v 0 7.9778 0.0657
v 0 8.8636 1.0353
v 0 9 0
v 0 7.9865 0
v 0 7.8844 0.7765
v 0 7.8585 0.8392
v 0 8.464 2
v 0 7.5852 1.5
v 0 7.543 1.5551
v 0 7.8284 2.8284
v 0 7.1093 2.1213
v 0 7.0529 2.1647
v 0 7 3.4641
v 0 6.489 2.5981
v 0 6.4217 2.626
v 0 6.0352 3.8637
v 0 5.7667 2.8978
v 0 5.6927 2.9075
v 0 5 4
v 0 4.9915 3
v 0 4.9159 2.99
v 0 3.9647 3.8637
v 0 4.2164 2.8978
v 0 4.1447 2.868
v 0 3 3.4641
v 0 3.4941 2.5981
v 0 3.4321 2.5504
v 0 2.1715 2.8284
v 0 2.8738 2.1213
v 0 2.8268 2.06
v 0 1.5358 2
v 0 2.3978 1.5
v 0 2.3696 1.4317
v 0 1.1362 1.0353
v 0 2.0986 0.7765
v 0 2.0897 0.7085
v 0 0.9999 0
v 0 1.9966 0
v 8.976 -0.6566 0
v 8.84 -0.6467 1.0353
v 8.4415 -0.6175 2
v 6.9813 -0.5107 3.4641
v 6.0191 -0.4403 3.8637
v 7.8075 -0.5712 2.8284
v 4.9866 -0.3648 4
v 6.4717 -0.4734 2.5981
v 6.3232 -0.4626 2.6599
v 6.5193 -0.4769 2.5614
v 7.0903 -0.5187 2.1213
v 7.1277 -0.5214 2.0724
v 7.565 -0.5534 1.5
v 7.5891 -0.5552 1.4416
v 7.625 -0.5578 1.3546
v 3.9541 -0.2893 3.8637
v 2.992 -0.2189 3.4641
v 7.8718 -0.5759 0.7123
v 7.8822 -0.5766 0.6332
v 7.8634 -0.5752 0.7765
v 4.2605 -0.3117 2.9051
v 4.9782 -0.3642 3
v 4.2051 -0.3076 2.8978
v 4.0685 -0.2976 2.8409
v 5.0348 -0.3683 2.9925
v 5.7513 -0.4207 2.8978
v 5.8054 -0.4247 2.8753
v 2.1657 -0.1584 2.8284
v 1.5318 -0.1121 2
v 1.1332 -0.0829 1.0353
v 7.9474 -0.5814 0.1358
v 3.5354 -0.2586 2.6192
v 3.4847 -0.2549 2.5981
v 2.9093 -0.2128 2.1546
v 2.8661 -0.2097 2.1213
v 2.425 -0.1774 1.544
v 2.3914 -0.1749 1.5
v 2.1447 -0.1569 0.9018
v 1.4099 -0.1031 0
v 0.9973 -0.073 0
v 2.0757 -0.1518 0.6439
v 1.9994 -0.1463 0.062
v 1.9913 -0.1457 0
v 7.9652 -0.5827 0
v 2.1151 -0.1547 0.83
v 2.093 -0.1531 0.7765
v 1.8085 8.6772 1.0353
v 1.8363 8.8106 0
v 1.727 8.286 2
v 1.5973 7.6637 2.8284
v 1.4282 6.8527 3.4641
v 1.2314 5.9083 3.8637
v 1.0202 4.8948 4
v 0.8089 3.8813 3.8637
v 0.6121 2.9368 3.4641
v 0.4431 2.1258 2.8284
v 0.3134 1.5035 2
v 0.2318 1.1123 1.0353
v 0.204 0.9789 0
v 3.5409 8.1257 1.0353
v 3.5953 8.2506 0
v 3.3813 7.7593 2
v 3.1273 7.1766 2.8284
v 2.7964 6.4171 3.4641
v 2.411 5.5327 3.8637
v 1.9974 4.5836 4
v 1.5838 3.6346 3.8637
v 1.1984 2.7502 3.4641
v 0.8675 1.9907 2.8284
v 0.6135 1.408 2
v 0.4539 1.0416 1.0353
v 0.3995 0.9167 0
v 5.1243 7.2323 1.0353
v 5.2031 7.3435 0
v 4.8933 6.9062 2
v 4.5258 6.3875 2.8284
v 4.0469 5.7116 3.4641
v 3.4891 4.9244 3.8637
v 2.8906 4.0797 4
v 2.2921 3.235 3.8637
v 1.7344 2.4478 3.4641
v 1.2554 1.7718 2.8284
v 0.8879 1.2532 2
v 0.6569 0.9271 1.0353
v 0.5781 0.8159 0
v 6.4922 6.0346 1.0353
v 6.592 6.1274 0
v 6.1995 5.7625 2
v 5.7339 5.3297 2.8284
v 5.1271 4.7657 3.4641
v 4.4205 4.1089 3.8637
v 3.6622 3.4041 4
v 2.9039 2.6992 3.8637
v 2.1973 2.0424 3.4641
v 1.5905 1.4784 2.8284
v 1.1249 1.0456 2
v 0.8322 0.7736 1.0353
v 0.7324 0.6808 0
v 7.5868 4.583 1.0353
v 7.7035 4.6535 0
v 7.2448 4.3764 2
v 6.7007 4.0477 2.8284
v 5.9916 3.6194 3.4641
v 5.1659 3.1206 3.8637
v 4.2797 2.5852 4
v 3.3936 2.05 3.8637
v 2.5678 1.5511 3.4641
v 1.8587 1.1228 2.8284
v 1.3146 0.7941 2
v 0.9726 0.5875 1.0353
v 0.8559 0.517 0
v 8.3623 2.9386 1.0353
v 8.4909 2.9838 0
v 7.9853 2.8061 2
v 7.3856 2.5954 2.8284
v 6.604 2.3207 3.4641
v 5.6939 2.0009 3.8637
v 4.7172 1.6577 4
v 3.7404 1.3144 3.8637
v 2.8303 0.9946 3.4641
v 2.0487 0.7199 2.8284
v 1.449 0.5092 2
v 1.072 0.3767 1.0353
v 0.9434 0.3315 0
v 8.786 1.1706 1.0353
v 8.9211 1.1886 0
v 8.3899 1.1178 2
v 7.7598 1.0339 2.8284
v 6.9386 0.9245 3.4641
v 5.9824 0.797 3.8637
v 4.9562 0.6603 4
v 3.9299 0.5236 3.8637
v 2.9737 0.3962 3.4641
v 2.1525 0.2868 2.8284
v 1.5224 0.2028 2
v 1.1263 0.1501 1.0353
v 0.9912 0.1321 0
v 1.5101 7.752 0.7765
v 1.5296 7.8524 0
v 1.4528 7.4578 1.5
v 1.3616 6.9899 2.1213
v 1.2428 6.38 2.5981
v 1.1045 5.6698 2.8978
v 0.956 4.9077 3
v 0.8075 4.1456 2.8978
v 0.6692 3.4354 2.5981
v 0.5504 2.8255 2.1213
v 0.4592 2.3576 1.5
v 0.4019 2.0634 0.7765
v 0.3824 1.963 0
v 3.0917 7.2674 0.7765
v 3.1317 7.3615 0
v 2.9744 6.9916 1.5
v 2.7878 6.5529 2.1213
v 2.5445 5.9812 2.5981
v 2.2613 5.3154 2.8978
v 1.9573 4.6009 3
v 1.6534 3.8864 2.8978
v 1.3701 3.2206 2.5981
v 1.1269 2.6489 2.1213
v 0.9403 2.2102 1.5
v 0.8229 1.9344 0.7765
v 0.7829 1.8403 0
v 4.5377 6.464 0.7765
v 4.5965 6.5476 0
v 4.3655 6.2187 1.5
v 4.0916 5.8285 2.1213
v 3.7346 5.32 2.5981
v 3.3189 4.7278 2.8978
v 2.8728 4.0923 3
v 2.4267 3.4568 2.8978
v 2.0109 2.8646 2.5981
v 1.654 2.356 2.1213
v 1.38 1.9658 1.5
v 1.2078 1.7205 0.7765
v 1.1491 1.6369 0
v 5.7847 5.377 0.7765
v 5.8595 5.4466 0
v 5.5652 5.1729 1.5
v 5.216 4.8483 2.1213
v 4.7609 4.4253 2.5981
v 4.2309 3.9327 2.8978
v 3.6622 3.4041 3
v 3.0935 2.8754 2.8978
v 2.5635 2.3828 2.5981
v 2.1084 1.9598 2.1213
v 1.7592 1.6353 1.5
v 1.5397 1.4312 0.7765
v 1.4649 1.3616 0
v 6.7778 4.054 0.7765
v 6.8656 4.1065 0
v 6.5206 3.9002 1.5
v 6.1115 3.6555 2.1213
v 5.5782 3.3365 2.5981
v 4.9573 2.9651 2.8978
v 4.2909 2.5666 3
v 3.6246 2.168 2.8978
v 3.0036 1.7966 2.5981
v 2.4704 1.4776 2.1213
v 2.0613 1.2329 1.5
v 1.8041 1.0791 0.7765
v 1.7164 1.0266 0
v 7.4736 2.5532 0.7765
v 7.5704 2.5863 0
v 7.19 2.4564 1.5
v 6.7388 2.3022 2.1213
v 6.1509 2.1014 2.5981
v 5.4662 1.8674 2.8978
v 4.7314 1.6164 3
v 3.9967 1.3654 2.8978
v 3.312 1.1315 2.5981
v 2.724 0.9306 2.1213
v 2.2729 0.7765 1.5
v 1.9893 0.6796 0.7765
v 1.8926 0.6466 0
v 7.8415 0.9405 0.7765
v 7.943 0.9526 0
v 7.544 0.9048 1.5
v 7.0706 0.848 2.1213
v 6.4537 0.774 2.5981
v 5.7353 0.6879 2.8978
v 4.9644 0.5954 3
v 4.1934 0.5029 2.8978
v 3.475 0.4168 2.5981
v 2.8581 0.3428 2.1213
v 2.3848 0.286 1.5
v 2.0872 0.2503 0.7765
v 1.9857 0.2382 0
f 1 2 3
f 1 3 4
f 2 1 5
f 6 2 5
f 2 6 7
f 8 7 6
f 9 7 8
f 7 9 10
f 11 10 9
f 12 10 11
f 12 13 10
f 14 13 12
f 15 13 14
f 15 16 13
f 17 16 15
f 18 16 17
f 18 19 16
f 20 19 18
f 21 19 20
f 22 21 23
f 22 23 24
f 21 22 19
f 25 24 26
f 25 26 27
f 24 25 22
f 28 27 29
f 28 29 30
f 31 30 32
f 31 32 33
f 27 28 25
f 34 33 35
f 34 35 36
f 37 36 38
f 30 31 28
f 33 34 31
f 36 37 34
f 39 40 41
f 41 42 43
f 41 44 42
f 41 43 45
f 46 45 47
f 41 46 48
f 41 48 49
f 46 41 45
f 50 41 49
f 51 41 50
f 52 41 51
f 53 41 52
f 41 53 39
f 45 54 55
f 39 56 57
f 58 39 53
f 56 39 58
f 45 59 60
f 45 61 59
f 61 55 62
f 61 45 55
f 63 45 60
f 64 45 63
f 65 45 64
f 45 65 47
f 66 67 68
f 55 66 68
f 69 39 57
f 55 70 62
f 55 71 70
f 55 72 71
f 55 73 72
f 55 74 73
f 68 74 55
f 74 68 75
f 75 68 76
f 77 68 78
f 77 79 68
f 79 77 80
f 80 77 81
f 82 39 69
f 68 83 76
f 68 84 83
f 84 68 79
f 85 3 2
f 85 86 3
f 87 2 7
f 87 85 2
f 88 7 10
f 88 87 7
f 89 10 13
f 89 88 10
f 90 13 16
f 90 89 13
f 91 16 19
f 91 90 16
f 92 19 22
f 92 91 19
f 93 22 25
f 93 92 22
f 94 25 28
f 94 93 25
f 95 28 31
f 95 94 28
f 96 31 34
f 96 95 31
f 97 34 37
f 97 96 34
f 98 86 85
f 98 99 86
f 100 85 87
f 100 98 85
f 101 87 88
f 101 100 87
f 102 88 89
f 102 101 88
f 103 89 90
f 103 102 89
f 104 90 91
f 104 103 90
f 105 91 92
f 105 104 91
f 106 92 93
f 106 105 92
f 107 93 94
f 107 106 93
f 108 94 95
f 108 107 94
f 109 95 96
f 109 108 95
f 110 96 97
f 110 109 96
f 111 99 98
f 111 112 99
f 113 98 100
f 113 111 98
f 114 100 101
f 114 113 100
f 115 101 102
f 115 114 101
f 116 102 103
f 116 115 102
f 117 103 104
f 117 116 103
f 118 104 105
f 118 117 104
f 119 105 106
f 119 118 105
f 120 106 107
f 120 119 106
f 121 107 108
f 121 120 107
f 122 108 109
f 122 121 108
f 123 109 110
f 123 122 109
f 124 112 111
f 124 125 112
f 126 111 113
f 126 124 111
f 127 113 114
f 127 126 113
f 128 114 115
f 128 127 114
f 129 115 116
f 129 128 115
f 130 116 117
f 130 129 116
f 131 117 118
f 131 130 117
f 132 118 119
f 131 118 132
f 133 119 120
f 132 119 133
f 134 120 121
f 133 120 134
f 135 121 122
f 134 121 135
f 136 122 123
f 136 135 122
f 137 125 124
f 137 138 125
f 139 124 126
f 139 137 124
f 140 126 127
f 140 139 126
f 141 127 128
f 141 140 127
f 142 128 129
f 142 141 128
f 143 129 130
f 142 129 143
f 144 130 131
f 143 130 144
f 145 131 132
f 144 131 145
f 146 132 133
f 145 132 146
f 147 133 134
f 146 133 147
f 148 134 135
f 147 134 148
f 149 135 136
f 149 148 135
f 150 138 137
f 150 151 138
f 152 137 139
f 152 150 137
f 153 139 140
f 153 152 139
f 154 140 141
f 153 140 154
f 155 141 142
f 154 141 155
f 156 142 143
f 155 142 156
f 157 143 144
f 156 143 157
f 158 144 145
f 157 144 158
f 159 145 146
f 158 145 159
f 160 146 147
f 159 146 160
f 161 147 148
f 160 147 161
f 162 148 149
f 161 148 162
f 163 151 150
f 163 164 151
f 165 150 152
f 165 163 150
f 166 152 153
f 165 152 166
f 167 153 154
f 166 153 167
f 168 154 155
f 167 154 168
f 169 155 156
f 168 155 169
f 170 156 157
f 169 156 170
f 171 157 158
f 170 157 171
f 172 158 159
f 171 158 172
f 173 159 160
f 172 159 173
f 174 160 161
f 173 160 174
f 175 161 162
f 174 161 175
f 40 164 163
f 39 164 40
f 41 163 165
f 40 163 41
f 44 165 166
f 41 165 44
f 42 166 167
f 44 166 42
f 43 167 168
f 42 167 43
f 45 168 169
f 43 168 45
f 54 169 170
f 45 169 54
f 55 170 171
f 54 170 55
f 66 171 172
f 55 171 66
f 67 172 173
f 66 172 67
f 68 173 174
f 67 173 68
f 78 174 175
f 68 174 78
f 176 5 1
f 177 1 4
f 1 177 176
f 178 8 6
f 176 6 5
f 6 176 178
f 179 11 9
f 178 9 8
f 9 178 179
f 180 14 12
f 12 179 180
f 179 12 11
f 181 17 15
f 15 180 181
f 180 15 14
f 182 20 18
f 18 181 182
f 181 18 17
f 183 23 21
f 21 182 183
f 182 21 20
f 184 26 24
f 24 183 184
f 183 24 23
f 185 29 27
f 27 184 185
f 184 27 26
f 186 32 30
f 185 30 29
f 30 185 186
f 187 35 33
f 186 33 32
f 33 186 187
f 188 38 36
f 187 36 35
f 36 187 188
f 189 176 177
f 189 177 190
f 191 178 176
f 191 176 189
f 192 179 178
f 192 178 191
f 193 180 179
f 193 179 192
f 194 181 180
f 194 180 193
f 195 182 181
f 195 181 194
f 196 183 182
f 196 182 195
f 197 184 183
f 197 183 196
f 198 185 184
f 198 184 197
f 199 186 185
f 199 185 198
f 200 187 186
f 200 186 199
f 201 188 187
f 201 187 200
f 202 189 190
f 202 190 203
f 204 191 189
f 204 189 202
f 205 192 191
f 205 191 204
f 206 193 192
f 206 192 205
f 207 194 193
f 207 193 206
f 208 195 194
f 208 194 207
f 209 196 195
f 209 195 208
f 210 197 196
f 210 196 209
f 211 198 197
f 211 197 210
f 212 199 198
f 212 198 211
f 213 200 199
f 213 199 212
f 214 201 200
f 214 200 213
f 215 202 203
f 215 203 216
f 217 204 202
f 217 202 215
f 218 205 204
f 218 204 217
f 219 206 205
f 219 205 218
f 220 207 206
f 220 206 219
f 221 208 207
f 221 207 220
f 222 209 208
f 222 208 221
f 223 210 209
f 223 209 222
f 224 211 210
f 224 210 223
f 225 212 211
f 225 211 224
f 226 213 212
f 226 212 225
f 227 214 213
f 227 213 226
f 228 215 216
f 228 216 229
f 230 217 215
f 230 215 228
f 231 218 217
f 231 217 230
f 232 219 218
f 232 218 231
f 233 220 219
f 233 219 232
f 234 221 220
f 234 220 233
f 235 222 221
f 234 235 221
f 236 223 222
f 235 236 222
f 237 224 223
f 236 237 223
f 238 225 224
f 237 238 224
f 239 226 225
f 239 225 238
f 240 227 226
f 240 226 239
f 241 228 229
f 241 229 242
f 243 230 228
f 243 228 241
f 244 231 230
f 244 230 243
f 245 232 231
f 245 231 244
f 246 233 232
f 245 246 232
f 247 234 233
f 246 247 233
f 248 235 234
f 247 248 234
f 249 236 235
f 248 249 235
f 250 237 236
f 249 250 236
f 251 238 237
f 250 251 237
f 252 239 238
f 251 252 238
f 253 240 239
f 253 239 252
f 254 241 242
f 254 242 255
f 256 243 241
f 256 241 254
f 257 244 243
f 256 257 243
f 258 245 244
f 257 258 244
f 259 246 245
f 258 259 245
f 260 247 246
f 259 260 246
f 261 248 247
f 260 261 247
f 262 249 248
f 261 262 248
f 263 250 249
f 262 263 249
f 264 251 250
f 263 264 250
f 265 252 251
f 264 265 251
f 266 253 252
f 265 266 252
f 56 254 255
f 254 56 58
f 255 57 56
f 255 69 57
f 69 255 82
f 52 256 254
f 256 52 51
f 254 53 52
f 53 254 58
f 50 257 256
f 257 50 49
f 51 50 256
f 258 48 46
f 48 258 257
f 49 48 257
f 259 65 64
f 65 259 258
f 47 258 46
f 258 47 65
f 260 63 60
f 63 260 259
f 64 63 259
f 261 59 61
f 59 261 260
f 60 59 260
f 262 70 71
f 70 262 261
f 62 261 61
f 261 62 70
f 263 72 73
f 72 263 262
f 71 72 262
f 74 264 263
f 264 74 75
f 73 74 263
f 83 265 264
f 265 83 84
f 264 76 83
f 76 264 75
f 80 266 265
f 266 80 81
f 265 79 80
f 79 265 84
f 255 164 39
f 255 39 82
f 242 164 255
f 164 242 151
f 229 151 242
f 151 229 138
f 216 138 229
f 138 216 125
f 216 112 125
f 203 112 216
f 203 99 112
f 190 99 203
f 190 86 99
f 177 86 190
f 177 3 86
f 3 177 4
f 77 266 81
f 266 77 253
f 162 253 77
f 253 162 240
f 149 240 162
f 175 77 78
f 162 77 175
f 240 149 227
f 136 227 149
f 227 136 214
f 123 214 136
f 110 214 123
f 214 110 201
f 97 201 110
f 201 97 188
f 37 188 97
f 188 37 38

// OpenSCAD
// file: ../build_environments.scad
// build_environments.scad: modules to build level sections
//

module pool(diameter=10.0, wall_height=2.0, step_width=3.0, connections=[])
{
    difference() {
        union() {
        difference() {
            cylinder(h=0.5,r1=diameter+step_width,r2=diameter+step_width,$fn=48);
            translate([0,0,-0.1])
                cylinder(h=0.7,r1=diameter,r2=diameter,$fn=48);
        }
        difference() {
            cylinder(h=wall_height,r1=diameter+step_width+1.0,r2=diameter+step_width+1.0,$fn=48);
            translate([0,0,-0.1])
                cylinder(h=wall_height+0.2,r1=diameter+step_width,r2=diameter+step_width,$fn=48);
        }
        }
    
        for (c = connections)
        {
            rotate([0,90,0]) {
                angle = atan2(c[1],c[0]);
                rotate([-angle,0,0]) {
                    cylinder(h=diameter+5.0,r1=c[2],r2=c[2],$fn=48);
                }
            }
        }
    }
}

module straight(length=10.0, width=2.0, dy1=0.0, dy2=0.0, dz=0.0)
{
    dims = [0, 0, 0, 0, 0, (dz/length)];
    matrix = [
        [ 1, dims[0], dims[1], 0 ],
        [ dims[2], 1, dims[4], 0 ],
        [ dims[5], dims[3], 1, 0 ],
        [ 0, 0, 0, 1 ]
    ];
    multmatrix(matrix)
    difference() {
        translate([dy1,0,0])
        union() {
            rotate([0,90,0]) {
                difference() {
                    cylinder(h=(length-dy1-dy2),r1=width+1.0,r2=width+1.0,$fn=24);
                    translate([0,0,-0.1])
                        cylinder(h=(length-dy1-dy2+0.2),r1=width,r2=width,$fn=24);
                }
                difference() {
                    cylinder(h=1.0,r1=width+2.0,r2=width+2.0,$fn=24);
                    translate([0,0,-0.1])
                        cylinder(h=1.2,r1=width,r2=width,$fn=24);
                }
                translate([0,0,(length-dy1-dy2)-1.0]) {
                    difference() {
                        cylinder(h=1.0,r1=width+2.0,r2=width+2.0,$fn=24);
                        translate([0,0,-0.1])
                            cylinder(h=1.2,r1=width,r2=width,$fn=24);
                    }
                }
            }
        }
        translate([0,0,-(2*width+4.0)/2])
            cube([3*length,3*length,2*width+4.0],center=true);
    }
}

module curve(p0=[0,0], center=[0,0], dir=1, angle=0.0, width=2.0)
{
    radius = sqrt((p0[0]-center[0])*(p0[0]-center[0]) + (p0[1]-center[1])*(p0[1]-center[1]));
    if (dir == 0) {
        difference() {
            rotate([0,0,-90])
            difference() {
                rotate_extrude(angle = angle, convexity = 10, $fn=32)
                    translate([radius, 0, 0])
                        circle(r = width+1.0,$fn=24);
                rotate([0,0,-1.0])
                    rotate_extrude(angle = angle+2.0, convexity = 10, $fn=32)
                        translate([radius, 0, 0])
                            circle(r = width,$fn=24);
            }
            translate([0,0,-(2*width+4.0)/2])
                cube([5*radius,5*radius,2*width+4.0],center=true);
        }
    }
    else {
        difference() {
            rotate([0,0,90])
            difference() {
                rotate_extrude(angle = -angle, convexity = 10, $fn=32)
                    translate([radius, 0, 0])
                        circle(r = width+1.0,$fn=24);
                rotate([0,0,1.0])
                    rotate_extrude(angle = -angle-2.0, convexity = 10, $fn=32)
                        translate([radius, 0, 0])
                            circle(r = width,$fn=24);
            }
            translate([0,0,-(2*width+4.0)/2])
                cube([5*radius,5*radius,2*width+4.0],center=true);
        }
    }

}

// test pool
//pool(diameter=12.0000, wall_height=3.0000, step_width=3.0000, connections=[[0.0000,-26.0000,2.0000], [23.6074,0.0000,2.0000]]);

// test straight, slope
//straight(length=26.0000, width=2.0000, dy1=11.8322, dy2=6.7082, dz=0.0000);
//straight(length=29.1549, width=12.0000, dy1=0.0000, dy2=0.0000, dz=-15.0000);

// test curve
//curve(p0=[23.6074, 0.0000], center=[23.6074, 5.0000], dir=0, angle=60.1011, width=2.0000);
//curve(p0=[33.6426, 12.4219], center=[37.9771, 9.9295], dir=1, angle=120.4627, width=2.0000);
// main file
use <../build_environments.scad>;
curve(p0=[-134.7444, 146.5678], center=[-129.7532, 146.8634], dir=1, angle=94.1840, width=3.0000);
